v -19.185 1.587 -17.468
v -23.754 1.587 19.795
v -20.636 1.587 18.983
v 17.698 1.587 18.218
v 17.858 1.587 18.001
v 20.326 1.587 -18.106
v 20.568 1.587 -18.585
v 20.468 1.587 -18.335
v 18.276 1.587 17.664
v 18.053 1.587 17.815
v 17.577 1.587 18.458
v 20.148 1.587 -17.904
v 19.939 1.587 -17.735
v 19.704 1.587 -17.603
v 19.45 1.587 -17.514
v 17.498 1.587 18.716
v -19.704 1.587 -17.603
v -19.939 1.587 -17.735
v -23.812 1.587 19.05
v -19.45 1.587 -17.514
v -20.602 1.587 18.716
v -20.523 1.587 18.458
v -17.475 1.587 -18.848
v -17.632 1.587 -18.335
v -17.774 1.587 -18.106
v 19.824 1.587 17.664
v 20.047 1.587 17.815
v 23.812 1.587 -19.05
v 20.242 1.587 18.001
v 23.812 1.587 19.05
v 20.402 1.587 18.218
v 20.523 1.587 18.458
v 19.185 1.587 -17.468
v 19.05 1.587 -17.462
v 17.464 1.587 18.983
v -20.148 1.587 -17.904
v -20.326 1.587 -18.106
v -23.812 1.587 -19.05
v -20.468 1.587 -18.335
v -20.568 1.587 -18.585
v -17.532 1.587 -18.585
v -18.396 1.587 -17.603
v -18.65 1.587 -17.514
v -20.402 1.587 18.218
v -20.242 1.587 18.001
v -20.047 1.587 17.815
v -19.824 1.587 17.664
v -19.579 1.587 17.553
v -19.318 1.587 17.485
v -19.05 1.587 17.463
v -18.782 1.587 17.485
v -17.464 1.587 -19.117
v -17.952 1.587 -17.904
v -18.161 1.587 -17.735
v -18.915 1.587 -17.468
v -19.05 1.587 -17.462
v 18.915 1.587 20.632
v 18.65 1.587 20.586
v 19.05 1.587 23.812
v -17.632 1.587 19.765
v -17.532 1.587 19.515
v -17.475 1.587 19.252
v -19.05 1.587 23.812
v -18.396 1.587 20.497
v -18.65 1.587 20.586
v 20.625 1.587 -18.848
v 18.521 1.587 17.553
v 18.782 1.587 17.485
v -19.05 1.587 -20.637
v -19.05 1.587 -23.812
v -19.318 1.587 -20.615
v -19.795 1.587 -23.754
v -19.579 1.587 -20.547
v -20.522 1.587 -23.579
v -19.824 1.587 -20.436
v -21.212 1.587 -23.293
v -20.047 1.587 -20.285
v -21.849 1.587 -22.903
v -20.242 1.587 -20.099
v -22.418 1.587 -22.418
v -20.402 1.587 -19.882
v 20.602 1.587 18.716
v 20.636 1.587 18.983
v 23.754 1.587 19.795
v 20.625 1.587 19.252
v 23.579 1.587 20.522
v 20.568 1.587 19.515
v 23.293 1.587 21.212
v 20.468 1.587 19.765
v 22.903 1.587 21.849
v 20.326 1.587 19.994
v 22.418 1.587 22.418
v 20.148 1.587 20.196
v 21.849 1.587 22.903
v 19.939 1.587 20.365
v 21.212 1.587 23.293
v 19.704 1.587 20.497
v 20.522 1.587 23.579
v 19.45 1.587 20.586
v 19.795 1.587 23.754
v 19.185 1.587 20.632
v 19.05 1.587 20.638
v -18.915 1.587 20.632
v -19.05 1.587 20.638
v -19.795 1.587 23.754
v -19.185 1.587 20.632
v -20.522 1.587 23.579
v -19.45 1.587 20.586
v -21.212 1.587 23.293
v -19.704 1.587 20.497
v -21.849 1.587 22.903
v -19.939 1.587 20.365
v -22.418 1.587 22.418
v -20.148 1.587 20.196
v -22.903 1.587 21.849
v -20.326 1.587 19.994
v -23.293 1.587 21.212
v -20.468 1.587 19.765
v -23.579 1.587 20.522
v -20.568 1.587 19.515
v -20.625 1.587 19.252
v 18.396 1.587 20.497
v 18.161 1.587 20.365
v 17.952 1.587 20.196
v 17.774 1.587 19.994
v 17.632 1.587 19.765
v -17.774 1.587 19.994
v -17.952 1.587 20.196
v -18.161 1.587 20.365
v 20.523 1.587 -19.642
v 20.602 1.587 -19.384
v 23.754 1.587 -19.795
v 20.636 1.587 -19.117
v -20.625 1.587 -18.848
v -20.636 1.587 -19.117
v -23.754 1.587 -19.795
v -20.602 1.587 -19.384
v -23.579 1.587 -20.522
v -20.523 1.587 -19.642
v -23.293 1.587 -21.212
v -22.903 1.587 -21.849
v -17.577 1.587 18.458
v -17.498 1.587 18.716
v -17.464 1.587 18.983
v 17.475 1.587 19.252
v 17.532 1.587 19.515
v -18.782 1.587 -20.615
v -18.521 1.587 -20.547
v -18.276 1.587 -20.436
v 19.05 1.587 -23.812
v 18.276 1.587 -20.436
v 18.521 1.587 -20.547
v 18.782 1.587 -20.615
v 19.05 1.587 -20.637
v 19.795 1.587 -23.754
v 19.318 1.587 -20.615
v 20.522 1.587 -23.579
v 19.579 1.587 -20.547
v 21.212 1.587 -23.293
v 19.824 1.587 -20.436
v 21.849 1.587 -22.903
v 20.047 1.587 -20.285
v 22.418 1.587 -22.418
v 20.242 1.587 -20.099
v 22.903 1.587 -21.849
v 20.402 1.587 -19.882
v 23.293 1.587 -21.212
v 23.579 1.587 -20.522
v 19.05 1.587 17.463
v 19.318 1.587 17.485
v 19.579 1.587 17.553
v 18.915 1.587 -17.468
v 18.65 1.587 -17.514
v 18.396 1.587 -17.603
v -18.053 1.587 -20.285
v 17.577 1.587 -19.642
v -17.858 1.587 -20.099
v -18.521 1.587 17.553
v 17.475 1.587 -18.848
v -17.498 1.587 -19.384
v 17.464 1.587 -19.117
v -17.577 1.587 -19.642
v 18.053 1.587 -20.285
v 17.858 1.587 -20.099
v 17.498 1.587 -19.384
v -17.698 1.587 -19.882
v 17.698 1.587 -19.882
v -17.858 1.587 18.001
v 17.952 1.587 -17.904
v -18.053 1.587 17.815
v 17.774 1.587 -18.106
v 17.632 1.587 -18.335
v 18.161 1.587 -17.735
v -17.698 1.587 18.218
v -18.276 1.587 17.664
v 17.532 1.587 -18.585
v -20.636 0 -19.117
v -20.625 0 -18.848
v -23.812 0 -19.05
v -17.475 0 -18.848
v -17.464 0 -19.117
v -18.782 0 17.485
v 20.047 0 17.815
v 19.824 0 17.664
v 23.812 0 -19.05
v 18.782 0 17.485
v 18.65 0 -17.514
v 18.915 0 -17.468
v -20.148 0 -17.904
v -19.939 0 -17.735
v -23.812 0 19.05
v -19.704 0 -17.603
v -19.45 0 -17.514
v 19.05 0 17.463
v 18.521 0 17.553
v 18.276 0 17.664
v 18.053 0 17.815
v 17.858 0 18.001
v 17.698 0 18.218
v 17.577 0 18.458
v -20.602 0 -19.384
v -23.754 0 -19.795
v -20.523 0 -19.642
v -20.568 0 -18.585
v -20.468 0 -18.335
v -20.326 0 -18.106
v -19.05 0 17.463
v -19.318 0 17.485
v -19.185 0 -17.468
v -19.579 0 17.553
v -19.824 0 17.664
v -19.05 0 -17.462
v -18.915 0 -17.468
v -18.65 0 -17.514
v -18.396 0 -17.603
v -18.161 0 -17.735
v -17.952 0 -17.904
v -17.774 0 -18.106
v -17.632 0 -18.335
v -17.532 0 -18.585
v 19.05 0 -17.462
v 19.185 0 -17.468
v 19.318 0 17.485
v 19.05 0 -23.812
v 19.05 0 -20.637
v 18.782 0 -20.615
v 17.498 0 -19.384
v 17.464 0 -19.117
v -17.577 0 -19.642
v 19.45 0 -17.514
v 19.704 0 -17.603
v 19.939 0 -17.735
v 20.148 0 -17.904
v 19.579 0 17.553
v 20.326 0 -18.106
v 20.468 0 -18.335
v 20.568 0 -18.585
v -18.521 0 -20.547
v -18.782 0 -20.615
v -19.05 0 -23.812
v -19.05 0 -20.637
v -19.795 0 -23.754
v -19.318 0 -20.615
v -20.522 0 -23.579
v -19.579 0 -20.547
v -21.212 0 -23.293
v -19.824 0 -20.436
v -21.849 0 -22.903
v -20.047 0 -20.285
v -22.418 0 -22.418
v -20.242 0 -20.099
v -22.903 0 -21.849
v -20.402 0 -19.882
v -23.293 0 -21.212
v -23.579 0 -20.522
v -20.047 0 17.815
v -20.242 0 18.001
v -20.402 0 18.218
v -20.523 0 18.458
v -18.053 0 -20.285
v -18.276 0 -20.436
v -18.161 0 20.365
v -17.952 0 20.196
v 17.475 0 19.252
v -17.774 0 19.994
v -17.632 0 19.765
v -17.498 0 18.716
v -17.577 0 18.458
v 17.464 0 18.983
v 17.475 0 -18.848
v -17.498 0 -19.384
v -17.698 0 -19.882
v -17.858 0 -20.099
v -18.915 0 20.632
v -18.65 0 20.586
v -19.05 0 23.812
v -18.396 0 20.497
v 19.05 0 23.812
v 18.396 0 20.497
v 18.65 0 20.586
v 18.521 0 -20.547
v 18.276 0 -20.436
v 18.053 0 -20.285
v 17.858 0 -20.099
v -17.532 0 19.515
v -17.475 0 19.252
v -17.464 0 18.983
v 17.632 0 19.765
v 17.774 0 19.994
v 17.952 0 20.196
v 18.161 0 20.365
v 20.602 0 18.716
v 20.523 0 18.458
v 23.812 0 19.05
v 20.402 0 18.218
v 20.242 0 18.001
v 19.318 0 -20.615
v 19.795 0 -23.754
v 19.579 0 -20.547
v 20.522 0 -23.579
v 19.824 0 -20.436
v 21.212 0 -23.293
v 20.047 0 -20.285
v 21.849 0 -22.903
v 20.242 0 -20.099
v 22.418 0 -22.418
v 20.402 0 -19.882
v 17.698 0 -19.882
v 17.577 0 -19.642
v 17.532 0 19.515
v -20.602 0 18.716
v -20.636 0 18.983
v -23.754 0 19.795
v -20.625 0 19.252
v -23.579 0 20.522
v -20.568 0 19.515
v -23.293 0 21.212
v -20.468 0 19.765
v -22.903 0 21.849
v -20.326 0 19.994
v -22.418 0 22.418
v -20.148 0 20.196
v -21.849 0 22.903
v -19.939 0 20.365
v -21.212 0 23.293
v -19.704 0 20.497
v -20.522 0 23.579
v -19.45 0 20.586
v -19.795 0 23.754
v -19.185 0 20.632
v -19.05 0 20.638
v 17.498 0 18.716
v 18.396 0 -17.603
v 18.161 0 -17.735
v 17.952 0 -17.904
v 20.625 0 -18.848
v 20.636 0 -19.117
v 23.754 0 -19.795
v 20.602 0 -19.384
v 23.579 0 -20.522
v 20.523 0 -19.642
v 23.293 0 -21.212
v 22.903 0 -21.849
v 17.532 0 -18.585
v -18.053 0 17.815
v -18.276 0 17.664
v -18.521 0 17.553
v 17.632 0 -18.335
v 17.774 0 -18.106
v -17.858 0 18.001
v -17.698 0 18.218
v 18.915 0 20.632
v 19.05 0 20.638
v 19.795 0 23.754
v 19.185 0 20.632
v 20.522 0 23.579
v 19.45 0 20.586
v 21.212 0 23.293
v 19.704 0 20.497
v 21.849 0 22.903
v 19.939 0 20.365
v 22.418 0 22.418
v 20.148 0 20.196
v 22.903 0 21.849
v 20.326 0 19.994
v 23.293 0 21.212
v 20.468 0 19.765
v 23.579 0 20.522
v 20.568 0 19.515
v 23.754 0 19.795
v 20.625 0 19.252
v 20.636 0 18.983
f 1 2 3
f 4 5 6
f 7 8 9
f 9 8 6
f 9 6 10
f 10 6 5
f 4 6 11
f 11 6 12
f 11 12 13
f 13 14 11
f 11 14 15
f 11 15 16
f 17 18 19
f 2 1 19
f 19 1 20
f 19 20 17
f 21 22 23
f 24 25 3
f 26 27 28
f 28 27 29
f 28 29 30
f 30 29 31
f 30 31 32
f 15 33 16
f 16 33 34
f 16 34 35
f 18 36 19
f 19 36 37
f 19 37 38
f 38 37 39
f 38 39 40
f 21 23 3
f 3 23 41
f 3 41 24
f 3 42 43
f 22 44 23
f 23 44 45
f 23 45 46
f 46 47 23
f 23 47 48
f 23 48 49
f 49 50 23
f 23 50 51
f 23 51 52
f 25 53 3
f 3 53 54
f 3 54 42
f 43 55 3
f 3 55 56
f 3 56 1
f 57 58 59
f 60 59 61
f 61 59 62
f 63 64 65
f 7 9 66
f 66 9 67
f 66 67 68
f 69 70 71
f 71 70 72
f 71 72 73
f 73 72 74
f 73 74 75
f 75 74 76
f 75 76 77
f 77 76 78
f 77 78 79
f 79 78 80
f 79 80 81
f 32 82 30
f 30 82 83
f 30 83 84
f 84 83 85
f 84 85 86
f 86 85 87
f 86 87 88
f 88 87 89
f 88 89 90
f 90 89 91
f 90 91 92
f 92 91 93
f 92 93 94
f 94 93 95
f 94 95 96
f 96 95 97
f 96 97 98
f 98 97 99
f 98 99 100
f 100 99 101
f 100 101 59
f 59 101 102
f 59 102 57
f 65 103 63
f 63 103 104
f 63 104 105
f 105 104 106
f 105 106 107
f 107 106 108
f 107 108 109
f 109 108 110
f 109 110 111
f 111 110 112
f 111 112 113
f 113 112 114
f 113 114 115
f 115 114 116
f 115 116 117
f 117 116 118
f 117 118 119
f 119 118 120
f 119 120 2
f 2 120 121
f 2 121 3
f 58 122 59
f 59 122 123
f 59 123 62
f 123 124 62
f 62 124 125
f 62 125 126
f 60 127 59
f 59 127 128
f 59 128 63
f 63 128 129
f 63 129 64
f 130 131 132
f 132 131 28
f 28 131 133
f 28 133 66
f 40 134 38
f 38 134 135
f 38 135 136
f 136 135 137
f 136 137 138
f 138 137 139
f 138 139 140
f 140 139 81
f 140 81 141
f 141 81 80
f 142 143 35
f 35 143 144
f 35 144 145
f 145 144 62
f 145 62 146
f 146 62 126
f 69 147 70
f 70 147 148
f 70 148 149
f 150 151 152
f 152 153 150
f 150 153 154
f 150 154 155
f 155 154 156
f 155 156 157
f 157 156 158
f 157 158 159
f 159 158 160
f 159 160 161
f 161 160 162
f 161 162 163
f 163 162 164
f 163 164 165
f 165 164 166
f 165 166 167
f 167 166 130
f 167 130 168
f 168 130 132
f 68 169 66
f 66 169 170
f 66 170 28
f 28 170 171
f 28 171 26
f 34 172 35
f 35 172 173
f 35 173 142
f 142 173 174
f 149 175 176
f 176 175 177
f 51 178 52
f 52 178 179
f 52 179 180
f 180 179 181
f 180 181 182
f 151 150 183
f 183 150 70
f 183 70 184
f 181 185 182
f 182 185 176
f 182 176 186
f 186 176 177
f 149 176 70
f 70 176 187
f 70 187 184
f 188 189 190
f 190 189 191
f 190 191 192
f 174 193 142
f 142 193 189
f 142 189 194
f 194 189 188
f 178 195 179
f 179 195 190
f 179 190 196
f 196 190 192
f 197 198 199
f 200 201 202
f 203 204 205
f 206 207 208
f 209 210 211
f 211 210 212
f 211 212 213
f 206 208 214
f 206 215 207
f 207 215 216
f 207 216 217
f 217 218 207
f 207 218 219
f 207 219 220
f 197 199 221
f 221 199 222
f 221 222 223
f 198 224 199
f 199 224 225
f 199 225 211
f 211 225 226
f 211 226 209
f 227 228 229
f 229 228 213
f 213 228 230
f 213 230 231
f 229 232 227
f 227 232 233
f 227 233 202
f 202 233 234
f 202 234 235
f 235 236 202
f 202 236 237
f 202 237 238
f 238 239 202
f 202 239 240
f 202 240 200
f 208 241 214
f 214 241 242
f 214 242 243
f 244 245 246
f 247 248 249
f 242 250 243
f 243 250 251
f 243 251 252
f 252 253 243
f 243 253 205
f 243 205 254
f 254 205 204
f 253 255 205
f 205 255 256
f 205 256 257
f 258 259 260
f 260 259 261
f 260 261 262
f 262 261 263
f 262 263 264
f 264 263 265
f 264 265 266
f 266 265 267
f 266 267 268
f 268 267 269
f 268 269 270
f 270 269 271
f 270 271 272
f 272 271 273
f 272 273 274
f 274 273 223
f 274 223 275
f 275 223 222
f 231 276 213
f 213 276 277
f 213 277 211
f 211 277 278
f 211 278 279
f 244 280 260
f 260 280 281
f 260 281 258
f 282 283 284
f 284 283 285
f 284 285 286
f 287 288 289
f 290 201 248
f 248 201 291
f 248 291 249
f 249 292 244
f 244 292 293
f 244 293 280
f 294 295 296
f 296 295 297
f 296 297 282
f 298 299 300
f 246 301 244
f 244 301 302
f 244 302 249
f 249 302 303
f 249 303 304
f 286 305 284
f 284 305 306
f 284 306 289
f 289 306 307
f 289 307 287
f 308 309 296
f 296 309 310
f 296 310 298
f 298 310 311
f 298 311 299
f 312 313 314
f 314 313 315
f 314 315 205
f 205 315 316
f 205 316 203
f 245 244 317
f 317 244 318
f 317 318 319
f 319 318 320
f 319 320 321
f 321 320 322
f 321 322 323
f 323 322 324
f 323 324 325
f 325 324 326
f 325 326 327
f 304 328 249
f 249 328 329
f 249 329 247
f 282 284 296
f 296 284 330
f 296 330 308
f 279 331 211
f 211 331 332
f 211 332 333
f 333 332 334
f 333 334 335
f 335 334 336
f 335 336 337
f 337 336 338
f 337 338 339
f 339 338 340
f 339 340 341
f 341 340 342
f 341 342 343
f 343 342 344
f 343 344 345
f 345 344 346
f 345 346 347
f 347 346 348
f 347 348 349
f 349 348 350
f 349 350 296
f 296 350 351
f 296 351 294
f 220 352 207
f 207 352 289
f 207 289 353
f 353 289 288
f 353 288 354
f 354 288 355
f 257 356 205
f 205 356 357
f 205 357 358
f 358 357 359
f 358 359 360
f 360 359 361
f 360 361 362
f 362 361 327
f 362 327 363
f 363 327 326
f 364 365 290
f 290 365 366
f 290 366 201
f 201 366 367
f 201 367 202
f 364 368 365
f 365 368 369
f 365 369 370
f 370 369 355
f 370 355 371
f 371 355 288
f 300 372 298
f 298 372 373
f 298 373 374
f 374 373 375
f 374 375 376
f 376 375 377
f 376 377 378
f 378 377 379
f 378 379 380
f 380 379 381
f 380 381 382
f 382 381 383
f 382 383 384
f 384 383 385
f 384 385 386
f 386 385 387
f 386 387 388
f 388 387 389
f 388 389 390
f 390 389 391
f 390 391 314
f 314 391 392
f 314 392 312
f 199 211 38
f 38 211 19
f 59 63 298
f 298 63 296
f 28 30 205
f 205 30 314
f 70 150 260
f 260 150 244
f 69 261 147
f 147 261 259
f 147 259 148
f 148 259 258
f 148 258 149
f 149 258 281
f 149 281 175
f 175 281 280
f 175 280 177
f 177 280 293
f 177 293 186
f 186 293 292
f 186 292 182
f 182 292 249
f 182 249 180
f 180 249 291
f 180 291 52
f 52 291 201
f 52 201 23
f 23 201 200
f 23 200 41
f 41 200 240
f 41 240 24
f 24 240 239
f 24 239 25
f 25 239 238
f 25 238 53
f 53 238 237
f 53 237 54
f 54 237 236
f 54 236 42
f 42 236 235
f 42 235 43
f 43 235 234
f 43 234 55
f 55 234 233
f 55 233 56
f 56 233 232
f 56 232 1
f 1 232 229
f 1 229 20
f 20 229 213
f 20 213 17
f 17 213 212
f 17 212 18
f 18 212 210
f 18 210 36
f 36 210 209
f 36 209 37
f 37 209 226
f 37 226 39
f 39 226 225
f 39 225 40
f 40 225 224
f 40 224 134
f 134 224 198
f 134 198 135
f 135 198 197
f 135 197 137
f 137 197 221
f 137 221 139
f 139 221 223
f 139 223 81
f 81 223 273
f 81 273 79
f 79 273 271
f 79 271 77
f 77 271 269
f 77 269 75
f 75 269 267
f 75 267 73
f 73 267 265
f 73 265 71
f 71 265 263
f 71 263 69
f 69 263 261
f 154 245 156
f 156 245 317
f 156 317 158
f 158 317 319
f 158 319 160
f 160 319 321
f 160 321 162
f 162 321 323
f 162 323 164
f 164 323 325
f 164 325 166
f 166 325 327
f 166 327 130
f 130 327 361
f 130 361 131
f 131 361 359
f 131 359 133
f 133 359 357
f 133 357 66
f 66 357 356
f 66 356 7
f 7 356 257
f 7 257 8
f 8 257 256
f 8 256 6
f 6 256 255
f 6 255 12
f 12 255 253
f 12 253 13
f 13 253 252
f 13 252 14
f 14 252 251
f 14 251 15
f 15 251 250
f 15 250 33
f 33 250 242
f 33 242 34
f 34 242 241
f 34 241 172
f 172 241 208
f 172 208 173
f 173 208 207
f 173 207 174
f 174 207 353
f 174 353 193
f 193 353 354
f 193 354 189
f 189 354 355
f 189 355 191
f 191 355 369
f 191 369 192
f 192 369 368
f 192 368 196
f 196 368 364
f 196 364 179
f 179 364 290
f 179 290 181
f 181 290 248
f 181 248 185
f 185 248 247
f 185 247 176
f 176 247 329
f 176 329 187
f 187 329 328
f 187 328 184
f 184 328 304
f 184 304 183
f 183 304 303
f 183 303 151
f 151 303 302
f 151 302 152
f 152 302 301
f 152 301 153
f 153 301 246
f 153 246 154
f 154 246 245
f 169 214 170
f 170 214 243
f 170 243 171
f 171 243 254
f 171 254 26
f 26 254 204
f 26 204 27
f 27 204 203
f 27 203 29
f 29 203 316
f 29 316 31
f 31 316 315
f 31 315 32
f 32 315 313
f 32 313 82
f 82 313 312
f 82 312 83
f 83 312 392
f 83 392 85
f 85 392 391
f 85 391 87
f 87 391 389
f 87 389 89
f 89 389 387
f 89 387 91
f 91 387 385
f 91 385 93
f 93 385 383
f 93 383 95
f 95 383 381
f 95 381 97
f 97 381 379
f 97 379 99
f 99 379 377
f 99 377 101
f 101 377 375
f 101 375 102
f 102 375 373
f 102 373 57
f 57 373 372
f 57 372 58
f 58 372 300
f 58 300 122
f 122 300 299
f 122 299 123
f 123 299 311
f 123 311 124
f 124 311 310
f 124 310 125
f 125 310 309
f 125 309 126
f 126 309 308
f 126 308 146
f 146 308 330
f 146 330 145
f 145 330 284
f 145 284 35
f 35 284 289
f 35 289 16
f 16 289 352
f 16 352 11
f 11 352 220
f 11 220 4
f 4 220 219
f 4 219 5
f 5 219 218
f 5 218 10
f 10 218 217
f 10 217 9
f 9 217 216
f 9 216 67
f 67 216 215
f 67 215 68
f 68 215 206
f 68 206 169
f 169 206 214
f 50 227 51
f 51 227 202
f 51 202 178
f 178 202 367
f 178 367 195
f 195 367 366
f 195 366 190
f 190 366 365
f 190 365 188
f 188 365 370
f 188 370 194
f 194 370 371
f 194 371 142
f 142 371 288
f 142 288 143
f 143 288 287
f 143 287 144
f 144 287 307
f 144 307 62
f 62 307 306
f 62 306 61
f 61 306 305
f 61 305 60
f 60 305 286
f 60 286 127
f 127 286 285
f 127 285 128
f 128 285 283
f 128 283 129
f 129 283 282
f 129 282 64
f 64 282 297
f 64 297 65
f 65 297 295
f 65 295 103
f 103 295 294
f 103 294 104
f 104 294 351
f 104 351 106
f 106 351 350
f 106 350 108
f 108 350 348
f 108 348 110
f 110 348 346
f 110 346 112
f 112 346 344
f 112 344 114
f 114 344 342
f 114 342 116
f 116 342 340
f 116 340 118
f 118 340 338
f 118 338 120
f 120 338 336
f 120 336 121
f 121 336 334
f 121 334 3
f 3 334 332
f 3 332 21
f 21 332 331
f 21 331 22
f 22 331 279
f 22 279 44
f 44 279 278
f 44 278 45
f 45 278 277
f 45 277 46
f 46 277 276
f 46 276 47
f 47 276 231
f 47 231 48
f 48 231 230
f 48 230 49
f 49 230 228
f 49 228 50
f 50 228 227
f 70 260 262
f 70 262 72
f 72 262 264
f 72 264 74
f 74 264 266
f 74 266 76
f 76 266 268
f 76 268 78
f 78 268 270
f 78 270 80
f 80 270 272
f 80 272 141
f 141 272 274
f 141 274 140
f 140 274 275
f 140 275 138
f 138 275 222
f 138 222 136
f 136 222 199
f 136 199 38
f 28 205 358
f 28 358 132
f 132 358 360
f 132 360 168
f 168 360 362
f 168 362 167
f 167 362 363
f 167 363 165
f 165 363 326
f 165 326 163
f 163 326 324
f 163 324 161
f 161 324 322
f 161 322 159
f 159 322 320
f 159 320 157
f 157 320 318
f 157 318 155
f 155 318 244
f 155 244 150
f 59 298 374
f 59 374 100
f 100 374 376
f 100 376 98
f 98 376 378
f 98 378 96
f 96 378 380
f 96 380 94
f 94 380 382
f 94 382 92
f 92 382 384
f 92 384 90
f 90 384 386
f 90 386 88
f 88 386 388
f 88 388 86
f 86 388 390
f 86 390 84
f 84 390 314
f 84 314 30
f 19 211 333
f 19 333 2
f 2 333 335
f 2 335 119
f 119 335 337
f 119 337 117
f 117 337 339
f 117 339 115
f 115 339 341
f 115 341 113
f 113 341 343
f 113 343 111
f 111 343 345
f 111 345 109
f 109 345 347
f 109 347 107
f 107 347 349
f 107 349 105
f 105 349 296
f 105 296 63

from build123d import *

# Parameters (mm, degrees)
SKETCH1_W           = 47.625
SKETCH1_H           = 47.625
SKETCH1_R           = 1.5875
BOSS_EXTRUDE1_DEPTH = 1.5875
FILLET1_R           = 4.7625


with BuildPart() as part:
    # Sketch1 → Boss-Extrude1 (new body)
    with BuildSketch(Plane(origin=(0, 0, 0), x_dir=(1, 0, 0), z_dir=(0, 1, 0))):
        Rectangle(SKETCH1_W, SKETCH1_H)
        with Locations((-19.05, 19.05)):
            Circle(SKETCH1_R, mode=Mode.SUBTRACT)
        with Locations((19.05, 19.05)):
            Circle(SKETCH1_R, mode=Mode.SUBTRACT)
        with Locations((19.05, -19.05)):
            Circle(SKETCH1_R, mode=Mode.SUBTRACT)
        with Locations((-19.05, -19.05)):
            Circle(SKETCH1_R, mode=Mode.SUBTRACT)
    extrude(amount=BOSS_EXTRUDE1_DEPTH)

    # Fillet1
    fillet1_edges = [part.edges().sort_by_distance(p)[0] for p in [
        (-23.8125, 0.79375, -23.8125),
        (23.8125, 0.79375, -23.8125),
        (23.8125, 0.79375, 23.8125),
        (-23.8125, 0.79375, 23.8125),
    ]]
    fillet(fillet1_edges, radius=FILLET1_R)


solid = part.part
